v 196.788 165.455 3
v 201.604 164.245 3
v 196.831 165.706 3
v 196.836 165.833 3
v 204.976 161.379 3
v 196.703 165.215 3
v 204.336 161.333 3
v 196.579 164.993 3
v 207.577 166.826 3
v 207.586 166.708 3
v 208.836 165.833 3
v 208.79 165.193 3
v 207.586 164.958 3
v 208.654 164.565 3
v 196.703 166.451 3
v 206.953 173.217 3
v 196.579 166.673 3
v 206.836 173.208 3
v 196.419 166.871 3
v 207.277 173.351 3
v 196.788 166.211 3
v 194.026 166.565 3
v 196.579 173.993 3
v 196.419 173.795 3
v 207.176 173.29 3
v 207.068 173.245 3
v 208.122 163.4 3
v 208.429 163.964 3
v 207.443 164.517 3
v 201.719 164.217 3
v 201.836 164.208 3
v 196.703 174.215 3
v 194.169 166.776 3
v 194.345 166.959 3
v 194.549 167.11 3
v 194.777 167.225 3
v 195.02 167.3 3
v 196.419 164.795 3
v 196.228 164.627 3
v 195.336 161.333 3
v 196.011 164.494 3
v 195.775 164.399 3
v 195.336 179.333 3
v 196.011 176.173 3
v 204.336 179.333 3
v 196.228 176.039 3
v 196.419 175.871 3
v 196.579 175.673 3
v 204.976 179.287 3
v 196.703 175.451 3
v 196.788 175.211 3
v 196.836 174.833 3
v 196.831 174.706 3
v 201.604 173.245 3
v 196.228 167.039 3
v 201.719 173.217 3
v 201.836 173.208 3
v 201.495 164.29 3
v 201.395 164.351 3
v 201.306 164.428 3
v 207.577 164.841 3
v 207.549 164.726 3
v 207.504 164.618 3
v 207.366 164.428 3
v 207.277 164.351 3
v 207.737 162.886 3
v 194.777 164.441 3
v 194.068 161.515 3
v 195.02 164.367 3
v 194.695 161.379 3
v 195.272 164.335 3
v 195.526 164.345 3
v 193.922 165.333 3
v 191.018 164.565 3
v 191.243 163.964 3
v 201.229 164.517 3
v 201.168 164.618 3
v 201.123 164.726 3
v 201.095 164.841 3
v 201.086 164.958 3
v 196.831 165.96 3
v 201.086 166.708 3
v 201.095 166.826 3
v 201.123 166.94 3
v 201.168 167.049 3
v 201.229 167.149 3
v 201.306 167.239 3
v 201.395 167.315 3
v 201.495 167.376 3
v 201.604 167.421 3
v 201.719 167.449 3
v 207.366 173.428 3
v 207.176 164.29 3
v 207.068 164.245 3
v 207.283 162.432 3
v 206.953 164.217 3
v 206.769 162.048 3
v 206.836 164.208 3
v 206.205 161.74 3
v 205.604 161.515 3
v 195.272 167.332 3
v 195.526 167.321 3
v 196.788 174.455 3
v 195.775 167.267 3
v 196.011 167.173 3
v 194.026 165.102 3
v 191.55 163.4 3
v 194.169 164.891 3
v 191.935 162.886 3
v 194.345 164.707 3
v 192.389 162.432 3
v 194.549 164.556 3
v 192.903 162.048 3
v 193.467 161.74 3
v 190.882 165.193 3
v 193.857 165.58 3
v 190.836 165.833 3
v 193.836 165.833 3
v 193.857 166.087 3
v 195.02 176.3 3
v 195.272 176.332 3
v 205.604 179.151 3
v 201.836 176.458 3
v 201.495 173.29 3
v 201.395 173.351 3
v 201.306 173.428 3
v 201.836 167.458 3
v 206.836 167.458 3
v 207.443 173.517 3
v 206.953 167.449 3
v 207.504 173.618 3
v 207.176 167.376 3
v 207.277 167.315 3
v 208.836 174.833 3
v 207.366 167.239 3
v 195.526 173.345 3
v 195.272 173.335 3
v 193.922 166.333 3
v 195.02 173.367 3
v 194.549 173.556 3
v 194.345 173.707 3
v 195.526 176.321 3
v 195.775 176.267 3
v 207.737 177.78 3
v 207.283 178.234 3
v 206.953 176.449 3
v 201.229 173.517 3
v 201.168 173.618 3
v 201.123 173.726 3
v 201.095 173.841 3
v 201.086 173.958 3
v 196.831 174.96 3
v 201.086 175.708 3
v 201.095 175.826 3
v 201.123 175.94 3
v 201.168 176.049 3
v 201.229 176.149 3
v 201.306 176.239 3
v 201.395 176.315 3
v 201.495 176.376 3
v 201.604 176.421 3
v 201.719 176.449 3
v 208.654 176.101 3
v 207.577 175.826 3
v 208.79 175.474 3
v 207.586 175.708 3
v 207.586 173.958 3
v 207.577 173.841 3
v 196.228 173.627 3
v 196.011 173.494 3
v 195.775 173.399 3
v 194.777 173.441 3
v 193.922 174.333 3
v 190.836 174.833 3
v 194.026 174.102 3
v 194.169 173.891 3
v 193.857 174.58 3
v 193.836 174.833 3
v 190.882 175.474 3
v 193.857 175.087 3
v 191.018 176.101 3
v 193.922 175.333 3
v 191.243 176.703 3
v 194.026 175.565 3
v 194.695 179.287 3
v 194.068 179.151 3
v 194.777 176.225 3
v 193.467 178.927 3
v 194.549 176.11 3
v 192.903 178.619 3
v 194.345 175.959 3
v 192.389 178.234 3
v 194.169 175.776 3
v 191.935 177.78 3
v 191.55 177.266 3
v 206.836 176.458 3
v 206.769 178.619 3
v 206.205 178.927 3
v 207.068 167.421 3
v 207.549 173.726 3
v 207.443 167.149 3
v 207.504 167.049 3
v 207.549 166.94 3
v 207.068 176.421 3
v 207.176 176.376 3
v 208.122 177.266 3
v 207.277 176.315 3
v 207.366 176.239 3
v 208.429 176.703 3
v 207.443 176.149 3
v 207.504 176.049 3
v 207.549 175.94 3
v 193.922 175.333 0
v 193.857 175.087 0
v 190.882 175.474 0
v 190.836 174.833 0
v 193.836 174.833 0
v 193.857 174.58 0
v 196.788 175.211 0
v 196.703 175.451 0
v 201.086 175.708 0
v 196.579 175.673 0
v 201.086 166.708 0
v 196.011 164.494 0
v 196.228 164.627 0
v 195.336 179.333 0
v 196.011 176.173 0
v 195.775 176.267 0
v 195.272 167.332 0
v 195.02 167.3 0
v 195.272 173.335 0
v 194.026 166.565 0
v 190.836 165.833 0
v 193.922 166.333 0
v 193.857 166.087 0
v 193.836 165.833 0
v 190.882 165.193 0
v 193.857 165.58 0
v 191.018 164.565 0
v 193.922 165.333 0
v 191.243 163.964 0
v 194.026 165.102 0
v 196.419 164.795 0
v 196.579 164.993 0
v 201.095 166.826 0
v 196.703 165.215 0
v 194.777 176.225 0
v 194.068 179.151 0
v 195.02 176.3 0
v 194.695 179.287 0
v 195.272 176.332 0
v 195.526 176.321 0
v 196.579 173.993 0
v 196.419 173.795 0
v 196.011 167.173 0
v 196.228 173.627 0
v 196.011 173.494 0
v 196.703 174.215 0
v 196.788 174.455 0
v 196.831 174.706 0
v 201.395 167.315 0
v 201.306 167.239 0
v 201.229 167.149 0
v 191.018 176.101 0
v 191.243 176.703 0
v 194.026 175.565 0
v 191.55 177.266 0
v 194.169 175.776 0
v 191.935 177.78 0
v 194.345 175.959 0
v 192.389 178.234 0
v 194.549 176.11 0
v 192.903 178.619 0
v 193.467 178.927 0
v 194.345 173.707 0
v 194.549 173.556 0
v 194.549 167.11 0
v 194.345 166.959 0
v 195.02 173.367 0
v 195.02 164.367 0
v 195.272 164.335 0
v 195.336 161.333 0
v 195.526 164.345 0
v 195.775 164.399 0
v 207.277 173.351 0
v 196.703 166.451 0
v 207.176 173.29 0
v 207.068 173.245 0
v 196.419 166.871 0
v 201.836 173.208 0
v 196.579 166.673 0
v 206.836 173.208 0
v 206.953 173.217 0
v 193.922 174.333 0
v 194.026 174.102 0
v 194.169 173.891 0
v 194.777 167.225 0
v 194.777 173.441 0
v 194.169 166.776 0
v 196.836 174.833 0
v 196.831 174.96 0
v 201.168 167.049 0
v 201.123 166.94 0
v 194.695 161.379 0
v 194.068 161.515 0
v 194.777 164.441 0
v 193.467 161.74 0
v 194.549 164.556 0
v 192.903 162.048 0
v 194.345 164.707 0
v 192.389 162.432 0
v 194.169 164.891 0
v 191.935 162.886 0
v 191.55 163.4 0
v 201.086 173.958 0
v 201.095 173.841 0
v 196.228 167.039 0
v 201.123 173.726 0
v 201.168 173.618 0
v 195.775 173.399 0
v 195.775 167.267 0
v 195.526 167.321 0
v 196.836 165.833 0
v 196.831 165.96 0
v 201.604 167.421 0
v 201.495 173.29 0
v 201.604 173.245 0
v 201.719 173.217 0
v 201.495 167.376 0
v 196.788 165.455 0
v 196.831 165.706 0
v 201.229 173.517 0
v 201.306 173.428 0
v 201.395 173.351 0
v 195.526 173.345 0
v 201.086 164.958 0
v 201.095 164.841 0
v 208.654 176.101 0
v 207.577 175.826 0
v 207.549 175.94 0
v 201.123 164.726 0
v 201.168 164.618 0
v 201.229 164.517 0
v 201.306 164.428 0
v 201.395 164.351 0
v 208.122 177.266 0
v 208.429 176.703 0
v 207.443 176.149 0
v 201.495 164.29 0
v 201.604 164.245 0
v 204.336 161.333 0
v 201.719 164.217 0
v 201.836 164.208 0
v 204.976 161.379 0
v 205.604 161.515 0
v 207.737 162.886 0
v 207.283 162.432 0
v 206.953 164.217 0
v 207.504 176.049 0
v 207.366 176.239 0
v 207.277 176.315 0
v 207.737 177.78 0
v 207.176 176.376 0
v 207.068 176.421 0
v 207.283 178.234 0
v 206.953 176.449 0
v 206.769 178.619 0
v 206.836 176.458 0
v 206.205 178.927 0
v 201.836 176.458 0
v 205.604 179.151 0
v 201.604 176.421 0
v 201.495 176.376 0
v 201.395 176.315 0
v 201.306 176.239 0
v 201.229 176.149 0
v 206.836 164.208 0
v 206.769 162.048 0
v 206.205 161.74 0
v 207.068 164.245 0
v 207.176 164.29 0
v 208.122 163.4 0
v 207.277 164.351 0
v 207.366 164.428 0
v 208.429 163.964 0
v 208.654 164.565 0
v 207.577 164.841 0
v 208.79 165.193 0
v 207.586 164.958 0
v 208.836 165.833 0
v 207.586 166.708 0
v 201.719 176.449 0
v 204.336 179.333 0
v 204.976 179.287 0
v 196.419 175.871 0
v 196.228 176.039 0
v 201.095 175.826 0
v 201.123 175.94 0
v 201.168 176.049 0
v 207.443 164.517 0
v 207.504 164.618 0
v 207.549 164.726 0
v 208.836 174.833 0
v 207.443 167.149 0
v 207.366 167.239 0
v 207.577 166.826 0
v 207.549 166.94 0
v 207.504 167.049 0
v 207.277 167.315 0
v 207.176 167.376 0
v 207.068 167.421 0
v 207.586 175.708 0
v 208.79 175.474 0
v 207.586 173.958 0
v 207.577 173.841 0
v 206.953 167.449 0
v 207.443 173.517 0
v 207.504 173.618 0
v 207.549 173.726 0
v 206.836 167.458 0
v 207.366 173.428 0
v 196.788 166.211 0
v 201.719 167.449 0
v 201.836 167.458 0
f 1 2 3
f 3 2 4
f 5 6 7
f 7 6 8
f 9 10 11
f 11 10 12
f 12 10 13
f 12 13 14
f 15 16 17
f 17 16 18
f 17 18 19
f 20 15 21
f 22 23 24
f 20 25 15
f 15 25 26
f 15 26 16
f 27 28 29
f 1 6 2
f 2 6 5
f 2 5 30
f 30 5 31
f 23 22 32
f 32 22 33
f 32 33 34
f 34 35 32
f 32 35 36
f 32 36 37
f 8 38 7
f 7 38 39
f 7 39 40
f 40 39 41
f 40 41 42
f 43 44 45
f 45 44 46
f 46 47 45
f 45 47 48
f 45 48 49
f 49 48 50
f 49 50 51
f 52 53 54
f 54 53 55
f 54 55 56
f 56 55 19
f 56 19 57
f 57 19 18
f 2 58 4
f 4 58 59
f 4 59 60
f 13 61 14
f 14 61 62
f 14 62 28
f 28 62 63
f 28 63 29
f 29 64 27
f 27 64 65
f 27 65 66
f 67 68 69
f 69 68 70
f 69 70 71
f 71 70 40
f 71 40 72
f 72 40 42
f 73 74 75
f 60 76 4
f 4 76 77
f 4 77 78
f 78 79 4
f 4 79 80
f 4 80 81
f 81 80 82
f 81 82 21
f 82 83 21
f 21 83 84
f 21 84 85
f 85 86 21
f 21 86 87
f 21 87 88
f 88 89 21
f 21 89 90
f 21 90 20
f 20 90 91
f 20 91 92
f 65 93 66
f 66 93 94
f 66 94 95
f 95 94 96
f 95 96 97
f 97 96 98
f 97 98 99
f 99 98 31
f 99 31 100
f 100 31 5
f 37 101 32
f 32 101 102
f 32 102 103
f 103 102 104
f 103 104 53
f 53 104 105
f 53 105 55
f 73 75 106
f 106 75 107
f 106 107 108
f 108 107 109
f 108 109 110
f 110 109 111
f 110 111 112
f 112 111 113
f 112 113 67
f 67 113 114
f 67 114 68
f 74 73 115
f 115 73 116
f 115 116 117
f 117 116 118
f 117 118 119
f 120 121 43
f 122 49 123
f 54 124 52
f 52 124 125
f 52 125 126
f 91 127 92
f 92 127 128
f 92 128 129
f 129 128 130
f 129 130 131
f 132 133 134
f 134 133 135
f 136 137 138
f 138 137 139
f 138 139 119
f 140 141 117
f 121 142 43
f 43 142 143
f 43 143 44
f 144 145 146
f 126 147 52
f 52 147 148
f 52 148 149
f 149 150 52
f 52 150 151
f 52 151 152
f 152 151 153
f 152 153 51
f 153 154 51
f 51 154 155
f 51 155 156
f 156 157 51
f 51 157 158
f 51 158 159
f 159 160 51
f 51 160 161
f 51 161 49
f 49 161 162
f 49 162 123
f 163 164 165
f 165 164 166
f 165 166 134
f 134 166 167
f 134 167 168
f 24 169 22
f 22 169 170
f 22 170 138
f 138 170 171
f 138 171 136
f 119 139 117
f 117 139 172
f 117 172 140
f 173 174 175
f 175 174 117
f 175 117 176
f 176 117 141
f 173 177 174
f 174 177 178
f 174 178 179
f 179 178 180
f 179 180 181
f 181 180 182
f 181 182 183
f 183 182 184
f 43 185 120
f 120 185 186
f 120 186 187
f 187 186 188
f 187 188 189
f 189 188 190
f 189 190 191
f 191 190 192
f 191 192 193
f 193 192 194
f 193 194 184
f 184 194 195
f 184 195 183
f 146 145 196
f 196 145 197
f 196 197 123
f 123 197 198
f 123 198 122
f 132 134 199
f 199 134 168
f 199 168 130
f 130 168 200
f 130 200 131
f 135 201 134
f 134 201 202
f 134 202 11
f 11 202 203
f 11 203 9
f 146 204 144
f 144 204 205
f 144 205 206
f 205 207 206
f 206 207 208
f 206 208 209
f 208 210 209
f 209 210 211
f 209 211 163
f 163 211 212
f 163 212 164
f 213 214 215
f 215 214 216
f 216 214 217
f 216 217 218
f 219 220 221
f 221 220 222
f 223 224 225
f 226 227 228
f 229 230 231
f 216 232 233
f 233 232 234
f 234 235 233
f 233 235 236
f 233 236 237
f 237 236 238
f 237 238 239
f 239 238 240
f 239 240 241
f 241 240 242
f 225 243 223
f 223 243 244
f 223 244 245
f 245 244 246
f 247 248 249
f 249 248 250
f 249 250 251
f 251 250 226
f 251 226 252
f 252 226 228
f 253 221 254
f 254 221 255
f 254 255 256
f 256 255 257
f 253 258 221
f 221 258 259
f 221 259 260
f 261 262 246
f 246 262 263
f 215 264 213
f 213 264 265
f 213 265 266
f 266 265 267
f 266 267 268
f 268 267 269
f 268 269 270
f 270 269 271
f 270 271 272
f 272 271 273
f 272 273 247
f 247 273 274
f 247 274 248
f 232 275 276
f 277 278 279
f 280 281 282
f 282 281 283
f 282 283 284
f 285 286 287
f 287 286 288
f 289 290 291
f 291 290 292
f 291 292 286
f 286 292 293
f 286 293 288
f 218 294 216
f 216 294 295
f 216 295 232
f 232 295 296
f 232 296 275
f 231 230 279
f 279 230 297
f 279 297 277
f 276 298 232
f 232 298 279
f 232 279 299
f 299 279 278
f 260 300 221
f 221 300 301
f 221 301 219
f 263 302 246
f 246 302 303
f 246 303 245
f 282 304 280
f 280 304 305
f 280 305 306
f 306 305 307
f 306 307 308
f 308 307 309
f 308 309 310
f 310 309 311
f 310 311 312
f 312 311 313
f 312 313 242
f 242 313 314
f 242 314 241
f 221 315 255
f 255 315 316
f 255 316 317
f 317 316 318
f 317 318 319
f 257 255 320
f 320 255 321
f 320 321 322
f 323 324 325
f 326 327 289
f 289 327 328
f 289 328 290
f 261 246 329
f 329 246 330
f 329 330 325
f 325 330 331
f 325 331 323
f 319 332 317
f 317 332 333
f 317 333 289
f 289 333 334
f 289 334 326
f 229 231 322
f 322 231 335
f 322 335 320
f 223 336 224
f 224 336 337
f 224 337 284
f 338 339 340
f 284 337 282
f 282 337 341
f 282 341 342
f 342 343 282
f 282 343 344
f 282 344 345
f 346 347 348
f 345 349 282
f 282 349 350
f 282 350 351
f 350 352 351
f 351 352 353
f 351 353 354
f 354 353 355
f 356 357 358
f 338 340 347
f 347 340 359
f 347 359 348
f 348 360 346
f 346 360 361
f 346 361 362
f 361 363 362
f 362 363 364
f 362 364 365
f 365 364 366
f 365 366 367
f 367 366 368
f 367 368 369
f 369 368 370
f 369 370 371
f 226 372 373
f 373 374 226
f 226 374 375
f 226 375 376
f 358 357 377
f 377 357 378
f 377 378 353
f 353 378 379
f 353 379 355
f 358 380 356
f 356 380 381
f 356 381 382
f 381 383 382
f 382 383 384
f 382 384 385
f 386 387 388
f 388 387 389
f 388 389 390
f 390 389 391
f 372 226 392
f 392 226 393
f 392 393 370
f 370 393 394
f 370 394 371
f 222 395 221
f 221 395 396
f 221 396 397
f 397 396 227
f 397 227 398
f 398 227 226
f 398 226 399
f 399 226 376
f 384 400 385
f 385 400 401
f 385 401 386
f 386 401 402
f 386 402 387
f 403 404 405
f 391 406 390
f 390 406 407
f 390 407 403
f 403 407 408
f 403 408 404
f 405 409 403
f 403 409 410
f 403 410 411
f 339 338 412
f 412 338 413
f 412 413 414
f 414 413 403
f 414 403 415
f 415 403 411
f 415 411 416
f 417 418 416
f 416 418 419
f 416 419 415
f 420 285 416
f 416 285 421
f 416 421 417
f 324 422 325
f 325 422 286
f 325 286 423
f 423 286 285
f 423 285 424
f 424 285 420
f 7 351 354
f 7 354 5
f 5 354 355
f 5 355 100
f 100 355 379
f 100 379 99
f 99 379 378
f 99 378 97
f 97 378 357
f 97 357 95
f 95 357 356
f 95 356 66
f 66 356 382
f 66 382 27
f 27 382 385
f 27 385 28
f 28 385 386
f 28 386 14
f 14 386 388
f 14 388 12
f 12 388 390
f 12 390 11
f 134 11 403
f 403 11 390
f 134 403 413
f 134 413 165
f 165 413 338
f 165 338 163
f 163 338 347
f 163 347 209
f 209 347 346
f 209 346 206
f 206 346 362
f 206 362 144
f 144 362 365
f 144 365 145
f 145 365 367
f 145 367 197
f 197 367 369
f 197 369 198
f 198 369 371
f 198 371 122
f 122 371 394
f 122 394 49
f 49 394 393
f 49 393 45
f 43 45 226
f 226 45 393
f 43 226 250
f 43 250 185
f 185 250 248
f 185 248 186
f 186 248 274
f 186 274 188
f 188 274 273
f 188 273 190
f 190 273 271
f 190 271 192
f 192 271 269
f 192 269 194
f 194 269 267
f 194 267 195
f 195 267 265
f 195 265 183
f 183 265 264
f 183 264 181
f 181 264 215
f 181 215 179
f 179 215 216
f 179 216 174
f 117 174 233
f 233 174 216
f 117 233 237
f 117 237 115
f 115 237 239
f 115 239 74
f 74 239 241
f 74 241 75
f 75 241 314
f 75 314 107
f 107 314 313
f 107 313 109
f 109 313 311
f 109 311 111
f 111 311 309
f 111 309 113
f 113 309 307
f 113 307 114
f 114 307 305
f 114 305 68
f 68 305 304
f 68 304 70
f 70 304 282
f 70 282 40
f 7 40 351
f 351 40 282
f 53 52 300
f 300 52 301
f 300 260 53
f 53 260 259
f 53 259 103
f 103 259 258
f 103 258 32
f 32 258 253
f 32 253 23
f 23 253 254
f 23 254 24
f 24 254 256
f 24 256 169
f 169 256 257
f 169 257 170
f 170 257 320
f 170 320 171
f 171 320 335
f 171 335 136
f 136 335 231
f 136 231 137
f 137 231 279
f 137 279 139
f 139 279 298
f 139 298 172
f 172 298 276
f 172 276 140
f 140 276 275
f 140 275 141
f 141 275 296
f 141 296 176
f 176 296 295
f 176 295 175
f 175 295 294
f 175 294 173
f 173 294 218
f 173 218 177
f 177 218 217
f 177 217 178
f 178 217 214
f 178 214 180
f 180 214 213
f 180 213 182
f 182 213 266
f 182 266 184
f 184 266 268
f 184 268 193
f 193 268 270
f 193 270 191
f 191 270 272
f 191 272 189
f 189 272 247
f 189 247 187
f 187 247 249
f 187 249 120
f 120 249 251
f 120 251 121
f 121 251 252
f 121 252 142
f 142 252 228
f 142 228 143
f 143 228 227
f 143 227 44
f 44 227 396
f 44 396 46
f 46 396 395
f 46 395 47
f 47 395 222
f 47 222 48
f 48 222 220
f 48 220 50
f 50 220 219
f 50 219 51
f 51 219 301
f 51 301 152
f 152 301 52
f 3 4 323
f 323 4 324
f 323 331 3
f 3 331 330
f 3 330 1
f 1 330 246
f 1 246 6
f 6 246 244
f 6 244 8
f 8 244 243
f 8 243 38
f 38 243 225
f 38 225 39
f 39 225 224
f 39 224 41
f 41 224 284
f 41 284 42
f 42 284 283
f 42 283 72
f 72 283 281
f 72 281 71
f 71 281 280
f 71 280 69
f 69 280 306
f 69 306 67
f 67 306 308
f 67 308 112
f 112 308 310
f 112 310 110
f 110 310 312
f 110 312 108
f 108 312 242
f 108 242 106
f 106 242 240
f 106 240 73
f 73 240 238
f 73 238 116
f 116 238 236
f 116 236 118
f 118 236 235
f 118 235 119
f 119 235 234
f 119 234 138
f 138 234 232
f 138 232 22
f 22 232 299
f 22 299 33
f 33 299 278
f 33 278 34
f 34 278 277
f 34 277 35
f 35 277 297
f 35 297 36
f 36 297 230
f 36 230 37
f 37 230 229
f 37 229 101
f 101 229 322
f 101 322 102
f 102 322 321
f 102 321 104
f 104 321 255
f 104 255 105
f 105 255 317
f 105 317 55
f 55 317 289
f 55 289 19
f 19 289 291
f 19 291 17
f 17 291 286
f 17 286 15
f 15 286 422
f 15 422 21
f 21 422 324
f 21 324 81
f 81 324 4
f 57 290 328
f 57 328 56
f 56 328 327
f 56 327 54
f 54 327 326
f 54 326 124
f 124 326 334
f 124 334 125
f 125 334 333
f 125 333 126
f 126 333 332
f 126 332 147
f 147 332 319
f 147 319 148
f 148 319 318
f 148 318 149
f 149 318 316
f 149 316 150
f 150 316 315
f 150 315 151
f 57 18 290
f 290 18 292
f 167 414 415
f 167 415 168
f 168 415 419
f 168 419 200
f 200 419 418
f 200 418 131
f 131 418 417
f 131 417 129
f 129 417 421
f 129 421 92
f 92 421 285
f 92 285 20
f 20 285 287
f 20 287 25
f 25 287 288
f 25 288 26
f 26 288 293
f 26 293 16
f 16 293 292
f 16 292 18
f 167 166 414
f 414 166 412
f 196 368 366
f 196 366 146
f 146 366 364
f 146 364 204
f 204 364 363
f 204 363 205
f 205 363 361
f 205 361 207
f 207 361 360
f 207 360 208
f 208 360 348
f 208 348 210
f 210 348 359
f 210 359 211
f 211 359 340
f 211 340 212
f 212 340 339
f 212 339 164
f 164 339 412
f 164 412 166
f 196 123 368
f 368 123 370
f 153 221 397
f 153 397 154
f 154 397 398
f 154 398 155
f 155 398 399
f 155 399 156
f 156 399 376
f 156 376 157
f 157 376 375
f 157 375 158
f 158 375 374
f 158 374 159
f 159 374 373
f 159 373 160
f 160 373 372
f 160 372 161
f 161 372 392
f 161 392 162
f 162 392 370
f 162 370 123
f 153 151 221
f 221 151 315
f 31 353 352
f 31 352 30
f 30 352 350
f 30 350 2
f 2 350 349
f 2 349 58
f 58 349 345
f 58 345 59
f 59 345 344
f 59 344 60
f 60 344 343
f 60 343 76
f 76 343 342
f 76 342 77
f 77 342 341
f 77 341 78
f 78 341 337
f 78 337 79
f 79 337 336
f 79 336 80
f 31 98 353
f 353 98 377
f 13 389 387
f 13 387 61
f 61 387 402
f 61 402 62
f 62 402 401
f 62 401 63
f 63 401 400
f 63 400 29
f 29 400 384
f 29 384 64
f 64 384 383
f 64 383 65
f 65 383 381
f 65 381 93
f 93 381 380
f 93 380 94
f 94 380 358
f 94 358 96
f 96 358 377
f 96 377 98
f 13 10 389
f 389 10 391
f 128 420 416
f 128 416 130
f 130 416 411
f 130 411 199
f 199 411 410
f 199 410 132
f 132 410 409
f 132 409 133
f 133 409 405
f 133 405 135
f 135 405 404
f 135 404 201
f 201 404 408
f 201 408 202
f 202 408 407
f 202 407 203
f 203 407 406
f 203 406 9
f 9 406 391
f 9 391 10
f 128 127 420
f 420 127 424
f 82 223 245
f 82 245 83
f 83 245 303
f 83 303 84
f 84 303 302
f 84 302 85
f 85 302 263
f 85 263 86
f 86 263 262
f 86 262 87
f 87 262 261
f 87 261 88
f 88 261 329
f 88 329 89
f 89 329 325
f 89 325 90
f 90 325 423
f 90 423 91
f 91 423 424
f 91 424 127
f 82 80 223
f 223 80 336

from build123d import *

# Parameters (mm, degrees)
MODEL_R                 = 1.5
SALIENTE_EXTRUIR1_DEPTH = 3


with BuildPart() as part:
    # Model → Saliente-Extruir1 (new body)
    with BuildSketch(Plane.XY):
        with BuildLine():
            Line((195.335922194, 161.333196305), (204.335922194, 161.333196305))
            ThreePointArc((204.335922194, 161.333196305), (207.517902709, 162.651215789), (208.835922194, 165.833196305))
            Line((208.835922194, 165.833196305), (208.835922194, 174.833196305))
            ThreePointArc((208.835922194, 174.833196305), (207.517902709, 178.01517682), (204.335922194, 179.333196305))
            Line((204.335922194, 179.333196305), (195.335922194, 179.333196305))
            ThreePointArc((195.335922194, 179.333196305), (192.153941678, 178.01517682), (190.835922194, 174.833196305))
            Line((190.835922194, 174.833196305), (190.835922194, 165.833196305))
            ThreePointArc((190.835922194, 165.833196305), (192.153941678, 162.651215789), (195.335922194, 161.333196305))
        make_face()
        with Locations((195.335922194, 174.833196305)):
            Circle(MODEL_R, mode=Mode.SUBTRACT)
        with Locations((195.335922194, 165.833196305)):
            Circle(MODEL_R, mode=Mode.SUBTRACT)
        with BuildLine():
            Line((206.835922194, 173.208196305), (201.835922194, 173.208196305))
            ThreePointArc((201.835922194, 173.208196305), (201.305592108, 173.427866219), (201.085922194, 173.958196305))
            Line((201.085922194, 173.958196305), (201.085922194, 175.708196305))
            ThreePointArc((201.085922194, 175.708196305), (201.305592108, 176.23852639), (201.835922194, 176.458196305))
            Line((201.835922194, 176.458196305), (206.835922194, 176.458196305))
            ThreePointArc((206.835922194, 176.458196305), (207.36625228, 176.23852639), (207.585922194, 175.708196305))
            Line((207.585922194, 175.708196305), (207.585922194, 173.958196305))
            ThreePointArc((207.585922194, 173.958196305), (207.36625228, 173.427866219), (206.835922194, 173.208196305))
        make_face(mode=Mode.SUBTRACT)
        with BuildLine():
            Line((206.835922194, 164.208196305), (201.835922194, 164.208196305))
            ThreePointArc((201.835922194, 164.208196305), (201.305592108, 164.427866219), (201.085922194, 164.958196305))
            Line((201.085922194, 164.958196305), (201.085922194, 166.708196305))
            ThreePointArc((201.085922194, 166.708196305), (201.305592108, 167.23852639), (201.835922194, 167.458196305))
            Line((201.835922194, 167.458196305), (206.835922194, 167.458196305))
            ThreePointArc((206.835922194, 167.458196305), (207.36625228, 167.23852639), (207.585922194, 166.708196305))
            Line((207.585922194, 166.708196305), (207.585922194, 164.958196305))
            ThreePointArc((207.585922194, 164.958196305), (207.36625228, 164.427866219), (206.835922194, 164.208196305))
        make_face(mode=Mode.SUBTRACT)
    extrude(amount=SALIENTE_EXTRUIR1_DEPTH)


solid = part.part
